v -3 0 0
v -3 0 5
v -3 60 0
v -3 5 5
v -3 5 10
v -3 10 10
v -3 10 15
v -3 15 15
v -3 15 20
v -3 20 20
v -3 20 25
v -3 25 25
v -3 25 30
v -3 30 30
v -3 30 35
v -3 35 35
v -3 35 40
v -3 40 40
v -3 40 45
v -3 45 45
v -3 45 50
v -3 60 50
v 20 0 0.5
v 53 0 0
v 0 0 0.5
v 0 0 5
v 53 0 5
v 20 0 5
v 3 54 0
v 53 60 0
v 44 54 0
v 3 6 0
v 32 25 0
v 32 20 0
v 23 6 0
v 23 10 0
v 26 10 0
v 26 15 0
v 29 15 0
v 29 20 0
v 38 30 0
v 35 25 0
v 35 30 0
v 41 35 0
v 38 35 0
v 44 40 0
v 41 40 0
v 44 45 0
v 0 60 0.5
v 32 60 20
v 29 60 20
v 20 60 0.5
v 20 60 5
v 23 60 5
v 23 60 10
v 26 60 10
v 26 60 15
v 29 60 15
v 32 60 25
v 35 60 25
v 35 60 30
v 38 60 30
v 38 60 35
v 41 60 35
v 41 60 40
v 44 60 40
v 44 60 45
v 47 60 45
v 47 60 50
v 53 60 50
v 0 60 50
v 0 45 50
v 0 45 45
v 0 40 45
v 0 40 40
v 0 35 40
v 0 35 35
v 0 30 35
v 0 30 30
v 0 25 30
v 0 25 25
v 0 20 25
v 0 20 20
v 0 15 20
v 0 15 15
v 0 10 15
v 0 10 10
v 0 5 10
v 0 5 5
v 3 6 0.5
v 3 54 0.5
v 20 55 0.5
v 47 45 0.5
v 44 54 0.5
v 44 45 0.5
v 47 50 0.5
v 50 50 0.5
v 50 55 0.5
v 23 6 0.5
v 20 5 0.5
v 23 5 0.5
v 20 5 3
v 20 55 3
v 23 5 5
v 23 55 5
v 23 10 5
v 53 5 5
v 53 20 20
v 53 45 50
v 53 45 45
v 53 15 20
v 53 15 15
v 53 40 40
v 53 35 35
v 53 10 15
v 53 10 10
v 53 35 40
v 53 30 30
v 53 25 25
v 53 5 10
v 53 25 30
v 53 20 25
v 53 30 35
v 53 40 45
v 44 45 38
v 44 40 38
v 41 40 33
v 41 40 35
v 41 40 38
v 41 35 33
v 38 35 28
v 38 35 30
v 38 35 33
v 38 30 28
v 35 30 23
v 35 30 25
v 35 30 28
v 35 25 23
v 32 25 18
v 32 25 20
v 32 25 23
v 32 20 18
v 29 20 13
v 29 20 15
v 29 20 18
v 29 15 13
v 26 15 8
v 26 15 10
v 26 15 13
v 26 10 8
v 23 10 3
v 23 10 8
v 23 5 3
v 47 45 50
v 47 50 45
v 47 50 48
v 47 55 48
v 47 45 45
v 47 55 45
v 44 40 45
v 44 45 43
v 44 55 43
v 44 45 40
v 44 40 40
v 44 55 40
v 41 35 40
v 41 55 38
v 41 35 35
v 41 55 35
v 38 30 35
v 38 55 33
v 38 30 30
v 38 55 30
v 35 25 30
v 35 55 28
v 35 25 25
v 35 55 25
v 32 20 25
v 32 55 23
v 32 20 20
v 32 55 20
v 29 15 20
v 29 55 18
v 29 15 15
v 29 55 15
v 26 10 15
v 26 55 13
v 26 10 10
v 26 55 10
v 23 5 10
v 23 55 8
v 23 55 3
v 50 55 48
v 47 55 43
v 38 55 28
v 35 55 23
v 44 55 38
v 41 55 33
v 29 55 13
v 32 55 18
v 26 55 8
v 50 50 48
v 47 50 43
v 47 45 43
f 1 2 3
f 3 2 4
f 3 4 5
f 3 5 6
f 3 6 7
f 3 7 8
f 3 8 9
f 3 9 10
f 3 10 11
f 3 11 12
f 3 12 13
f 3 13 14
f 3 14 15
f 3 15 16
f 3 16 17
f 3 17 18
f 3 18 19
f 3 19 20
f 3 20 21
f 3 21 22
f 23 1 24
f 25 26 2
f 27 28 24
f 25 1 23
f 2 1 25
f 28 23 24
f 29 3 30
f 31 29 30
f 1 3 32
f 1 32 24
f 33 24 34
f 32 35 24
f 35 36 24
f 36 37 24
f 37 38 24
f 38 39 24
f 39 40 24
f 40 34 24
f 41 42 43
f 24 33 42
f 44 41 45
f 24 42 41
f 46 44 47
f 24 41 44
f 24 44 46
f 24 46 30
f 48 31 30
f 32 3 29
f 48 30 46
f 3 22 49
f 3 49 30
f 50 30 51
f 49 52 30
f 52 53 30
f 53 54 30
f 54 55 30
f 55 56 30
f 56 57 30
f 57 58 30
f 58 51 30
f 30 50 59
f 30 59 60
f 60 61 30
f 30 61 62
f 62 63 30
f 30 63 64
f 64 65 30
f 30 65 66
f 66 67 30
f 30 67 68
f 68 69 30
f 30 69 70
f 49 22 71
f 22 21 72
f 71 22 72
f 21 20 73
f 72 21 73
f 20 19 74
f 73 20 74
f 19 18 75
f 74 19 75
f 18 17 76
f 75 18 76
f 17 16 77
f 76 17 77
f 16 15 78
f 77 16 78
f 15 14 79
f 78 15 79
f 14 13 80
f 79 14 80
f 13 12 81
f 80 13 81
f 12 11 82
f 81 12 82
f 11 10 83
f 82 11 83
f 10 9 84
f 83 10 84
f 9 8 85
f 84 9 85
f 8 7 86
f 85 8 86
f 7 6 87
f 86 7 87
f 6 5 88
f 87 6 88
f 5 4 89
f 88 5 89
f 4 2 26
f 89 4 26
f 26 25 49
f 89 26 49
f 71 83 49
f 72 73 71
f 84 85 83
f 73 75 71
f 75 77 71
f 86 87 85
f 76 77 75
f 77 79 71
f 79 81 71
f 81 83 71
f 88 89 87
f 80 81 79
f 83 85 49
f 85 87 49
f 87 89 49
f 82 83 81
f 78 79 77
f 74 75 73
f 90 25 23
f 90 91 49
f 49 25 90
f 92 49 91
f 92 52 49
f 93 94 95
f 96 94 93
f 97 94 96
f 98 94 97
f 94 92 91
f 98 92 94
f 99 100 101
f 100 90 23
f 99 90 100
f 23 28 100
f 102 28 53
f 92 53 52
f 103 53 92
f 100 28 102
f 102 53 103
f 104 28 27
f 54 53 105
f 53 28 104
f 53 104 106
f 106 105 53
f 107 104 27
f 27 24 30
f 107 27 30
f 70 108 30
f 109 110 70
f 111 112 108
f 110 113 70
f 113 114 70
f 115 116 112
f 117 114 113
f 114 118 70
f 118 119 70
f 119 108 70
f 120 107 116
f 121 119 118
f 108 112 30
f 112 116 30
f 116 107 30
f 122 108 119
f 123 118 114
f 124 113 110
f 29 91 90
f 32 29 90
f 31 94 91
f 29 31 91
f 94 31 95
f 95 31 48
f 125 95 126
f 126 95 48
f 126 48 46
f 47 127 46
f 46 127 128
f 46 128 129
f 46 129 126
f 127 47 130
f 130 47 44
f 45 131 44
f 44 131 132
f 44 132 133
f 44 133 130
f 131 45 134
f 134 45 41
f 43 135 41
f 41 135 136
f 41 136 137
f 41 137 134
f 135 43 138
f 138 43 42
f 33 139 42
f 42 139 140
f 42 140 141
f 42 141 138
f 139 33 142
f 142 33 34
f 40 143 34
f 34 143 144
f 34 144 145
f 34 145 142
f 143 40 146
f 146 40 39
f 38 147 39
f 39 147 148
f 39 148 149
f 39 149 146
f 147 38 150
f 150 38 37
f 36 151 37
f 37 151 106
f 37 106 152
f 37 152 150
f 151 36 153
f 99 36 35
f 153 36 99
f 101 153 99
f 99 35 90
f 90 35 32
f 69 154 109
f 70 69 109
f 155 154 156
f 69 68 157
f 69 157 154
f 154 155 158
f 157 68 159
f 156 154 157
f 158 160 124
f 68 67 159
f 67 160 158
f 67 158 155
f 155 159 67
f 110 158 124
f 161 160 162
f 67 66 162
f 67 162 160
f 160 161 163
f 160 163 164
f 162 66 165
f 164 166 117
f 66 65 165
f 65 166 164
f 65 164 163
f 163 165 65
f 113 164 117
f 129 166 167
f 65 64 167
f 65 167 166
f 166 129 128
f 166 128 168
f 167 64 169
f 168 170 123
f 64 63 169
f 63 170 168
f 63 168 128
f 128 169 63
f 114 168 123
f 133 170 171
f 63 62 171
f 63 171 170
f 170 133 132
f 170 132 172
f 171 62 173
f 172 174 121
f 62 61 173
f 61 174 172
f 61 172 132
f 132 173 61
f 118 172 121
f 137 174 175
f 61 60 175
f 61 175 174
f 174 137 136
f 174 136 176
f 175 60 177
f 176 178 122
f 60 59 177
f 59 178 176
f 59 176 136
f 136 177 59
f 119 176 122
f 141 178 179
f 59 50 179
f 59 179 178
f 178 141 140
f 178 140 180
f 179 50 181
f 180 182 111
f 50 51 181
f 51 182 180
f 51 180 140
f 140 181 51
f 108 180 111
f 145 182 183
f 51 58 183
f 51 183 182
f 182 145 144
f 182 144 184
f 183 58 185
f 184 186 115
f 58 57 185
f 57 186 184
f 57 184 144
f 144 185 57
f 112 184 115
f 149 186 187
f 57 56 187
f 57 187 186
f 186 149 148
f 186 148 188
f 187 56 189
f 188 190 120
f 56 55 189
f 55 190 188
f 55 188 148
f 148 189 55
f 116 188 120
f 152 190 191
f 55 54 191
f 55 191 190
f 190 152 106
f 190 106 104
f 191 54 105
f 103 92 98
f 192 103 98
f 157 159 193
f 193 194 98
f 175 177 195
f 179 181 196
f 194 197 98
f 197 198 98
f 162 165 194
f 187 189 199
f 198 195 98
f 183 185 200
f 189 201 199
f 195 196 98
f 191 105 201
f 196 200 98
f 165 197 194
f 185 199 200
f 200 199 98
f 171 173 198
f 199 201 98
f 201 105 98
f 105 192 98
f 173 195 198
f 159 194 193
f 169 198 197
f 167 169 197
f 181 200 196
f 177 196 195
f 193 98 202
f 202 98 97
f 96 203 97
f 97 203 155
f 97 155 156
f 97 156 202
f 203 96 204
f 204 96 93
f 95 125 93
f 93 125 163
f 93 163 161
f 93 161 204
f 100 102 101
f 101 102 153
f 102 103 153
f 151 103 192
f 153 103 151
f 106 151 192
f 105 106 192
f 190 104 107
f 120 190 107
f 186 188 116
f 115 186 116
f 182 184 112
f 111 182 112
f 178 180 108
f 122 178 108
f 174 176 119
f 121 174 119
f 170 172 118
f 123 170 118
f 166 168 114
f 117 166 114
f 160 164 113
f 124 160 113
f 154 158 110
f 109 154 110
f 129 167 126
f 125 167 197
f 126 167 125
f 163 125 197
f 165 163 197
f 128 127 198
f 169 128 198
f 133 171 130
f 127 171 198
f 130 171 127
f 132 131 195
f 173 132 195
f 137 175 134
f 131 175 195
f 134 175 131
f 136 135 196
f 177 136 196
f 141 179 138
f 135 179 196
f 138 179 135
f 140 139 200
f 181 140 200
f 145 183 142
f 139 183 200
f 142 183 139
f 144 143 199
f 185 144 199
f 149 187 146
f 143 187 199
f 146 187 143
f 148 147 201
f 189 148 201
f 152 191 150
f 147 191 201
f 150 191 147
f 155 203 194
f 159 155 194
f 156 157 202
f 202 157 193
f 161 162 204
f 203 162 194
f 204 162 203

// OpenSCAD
//PRIMARY INPUTS
gdmin = 20;     //minimum reversal gap distance (mm)
gdmax = 50;	//maximum reversal gap distance (mm)	
bdmin = 10;	//minimum bridging distance (mm)
bdmax = 60;	//maximum bridging distance (mm)
increment = 10;    //number of steps
height = 50;     //total height of object (mm)

//SECONDARY INPUTS
towerwidth = 3;     //width of vertical tower (mm)
borderwidth = 6;     //width of border on base plane (mm)
borderthickness = 0.5;     //thickness of border on base plane (mm)
bridgethickness = 2;     //thickness of bridges (mm)

//Script
xstepsize = (gdmax-gdmin)/increment; 
ystepsize = (bdmax-bdmin)/(increment);
zstepsize = height/increment;

union(){

difference(){
translate([-towerwidth,0,0]) cube([gdmin+xstepsize*(increment+1),ystepsize*(increment+2),borderthickness]);

translate([-towerwidth+borderwidth,borderwidth,0]) cube([gdmin+xstepsize*(increment+1)-2*borderwidth,ystepsize*(increment+2)-2*borderwidth,borderthickness]);
}

for(i=[0:increment-1]){
translate([-towerwidth,0+ystepsize*i,0])cube([towerwidth,ystepsize,zstepsize+zstepsize*i]);  //tower

translate([gdmin+xstepsize*i,0+ystepsize*i,0]) cube([(xstepsize+gdmax-gdmin)-xstepsize*i,ystepsize, zstepsize+zstepsize*i]);  //stairs

translate([gdmin+xstepsize*i,(ystepsize*increment)+ystepsize,0]) cube([(xstepsize+gdmax-gdmin)-xstepsize*i,ystepsize,zstepsize+zstepsize*i]);   //back tower

translate([gdmin+xstepsize*i,0+ystepsize*i,zstepsize+zstepsize*i-bridgethickness]) cube([xstepsize,ystepsize*(increment+1)-ystepsize*i,bridgethickness]);   //bridge
}

for(j=[increment:increment+1]){
translate([-towerwidth,ystepsize*j,0])cube([towerwidth,ystepsize,zstepsize+zstepsize*(increment-1)]);  //tower addon

translate([gdmin+xstepsize*increment,ystepsize*j,0]) cube([(xstepsize+gdmax-gdmin)-xstepsize*increment,ystepsize, zstepsize+zstepsize*(increment-1)]);   //top stair
}

}
